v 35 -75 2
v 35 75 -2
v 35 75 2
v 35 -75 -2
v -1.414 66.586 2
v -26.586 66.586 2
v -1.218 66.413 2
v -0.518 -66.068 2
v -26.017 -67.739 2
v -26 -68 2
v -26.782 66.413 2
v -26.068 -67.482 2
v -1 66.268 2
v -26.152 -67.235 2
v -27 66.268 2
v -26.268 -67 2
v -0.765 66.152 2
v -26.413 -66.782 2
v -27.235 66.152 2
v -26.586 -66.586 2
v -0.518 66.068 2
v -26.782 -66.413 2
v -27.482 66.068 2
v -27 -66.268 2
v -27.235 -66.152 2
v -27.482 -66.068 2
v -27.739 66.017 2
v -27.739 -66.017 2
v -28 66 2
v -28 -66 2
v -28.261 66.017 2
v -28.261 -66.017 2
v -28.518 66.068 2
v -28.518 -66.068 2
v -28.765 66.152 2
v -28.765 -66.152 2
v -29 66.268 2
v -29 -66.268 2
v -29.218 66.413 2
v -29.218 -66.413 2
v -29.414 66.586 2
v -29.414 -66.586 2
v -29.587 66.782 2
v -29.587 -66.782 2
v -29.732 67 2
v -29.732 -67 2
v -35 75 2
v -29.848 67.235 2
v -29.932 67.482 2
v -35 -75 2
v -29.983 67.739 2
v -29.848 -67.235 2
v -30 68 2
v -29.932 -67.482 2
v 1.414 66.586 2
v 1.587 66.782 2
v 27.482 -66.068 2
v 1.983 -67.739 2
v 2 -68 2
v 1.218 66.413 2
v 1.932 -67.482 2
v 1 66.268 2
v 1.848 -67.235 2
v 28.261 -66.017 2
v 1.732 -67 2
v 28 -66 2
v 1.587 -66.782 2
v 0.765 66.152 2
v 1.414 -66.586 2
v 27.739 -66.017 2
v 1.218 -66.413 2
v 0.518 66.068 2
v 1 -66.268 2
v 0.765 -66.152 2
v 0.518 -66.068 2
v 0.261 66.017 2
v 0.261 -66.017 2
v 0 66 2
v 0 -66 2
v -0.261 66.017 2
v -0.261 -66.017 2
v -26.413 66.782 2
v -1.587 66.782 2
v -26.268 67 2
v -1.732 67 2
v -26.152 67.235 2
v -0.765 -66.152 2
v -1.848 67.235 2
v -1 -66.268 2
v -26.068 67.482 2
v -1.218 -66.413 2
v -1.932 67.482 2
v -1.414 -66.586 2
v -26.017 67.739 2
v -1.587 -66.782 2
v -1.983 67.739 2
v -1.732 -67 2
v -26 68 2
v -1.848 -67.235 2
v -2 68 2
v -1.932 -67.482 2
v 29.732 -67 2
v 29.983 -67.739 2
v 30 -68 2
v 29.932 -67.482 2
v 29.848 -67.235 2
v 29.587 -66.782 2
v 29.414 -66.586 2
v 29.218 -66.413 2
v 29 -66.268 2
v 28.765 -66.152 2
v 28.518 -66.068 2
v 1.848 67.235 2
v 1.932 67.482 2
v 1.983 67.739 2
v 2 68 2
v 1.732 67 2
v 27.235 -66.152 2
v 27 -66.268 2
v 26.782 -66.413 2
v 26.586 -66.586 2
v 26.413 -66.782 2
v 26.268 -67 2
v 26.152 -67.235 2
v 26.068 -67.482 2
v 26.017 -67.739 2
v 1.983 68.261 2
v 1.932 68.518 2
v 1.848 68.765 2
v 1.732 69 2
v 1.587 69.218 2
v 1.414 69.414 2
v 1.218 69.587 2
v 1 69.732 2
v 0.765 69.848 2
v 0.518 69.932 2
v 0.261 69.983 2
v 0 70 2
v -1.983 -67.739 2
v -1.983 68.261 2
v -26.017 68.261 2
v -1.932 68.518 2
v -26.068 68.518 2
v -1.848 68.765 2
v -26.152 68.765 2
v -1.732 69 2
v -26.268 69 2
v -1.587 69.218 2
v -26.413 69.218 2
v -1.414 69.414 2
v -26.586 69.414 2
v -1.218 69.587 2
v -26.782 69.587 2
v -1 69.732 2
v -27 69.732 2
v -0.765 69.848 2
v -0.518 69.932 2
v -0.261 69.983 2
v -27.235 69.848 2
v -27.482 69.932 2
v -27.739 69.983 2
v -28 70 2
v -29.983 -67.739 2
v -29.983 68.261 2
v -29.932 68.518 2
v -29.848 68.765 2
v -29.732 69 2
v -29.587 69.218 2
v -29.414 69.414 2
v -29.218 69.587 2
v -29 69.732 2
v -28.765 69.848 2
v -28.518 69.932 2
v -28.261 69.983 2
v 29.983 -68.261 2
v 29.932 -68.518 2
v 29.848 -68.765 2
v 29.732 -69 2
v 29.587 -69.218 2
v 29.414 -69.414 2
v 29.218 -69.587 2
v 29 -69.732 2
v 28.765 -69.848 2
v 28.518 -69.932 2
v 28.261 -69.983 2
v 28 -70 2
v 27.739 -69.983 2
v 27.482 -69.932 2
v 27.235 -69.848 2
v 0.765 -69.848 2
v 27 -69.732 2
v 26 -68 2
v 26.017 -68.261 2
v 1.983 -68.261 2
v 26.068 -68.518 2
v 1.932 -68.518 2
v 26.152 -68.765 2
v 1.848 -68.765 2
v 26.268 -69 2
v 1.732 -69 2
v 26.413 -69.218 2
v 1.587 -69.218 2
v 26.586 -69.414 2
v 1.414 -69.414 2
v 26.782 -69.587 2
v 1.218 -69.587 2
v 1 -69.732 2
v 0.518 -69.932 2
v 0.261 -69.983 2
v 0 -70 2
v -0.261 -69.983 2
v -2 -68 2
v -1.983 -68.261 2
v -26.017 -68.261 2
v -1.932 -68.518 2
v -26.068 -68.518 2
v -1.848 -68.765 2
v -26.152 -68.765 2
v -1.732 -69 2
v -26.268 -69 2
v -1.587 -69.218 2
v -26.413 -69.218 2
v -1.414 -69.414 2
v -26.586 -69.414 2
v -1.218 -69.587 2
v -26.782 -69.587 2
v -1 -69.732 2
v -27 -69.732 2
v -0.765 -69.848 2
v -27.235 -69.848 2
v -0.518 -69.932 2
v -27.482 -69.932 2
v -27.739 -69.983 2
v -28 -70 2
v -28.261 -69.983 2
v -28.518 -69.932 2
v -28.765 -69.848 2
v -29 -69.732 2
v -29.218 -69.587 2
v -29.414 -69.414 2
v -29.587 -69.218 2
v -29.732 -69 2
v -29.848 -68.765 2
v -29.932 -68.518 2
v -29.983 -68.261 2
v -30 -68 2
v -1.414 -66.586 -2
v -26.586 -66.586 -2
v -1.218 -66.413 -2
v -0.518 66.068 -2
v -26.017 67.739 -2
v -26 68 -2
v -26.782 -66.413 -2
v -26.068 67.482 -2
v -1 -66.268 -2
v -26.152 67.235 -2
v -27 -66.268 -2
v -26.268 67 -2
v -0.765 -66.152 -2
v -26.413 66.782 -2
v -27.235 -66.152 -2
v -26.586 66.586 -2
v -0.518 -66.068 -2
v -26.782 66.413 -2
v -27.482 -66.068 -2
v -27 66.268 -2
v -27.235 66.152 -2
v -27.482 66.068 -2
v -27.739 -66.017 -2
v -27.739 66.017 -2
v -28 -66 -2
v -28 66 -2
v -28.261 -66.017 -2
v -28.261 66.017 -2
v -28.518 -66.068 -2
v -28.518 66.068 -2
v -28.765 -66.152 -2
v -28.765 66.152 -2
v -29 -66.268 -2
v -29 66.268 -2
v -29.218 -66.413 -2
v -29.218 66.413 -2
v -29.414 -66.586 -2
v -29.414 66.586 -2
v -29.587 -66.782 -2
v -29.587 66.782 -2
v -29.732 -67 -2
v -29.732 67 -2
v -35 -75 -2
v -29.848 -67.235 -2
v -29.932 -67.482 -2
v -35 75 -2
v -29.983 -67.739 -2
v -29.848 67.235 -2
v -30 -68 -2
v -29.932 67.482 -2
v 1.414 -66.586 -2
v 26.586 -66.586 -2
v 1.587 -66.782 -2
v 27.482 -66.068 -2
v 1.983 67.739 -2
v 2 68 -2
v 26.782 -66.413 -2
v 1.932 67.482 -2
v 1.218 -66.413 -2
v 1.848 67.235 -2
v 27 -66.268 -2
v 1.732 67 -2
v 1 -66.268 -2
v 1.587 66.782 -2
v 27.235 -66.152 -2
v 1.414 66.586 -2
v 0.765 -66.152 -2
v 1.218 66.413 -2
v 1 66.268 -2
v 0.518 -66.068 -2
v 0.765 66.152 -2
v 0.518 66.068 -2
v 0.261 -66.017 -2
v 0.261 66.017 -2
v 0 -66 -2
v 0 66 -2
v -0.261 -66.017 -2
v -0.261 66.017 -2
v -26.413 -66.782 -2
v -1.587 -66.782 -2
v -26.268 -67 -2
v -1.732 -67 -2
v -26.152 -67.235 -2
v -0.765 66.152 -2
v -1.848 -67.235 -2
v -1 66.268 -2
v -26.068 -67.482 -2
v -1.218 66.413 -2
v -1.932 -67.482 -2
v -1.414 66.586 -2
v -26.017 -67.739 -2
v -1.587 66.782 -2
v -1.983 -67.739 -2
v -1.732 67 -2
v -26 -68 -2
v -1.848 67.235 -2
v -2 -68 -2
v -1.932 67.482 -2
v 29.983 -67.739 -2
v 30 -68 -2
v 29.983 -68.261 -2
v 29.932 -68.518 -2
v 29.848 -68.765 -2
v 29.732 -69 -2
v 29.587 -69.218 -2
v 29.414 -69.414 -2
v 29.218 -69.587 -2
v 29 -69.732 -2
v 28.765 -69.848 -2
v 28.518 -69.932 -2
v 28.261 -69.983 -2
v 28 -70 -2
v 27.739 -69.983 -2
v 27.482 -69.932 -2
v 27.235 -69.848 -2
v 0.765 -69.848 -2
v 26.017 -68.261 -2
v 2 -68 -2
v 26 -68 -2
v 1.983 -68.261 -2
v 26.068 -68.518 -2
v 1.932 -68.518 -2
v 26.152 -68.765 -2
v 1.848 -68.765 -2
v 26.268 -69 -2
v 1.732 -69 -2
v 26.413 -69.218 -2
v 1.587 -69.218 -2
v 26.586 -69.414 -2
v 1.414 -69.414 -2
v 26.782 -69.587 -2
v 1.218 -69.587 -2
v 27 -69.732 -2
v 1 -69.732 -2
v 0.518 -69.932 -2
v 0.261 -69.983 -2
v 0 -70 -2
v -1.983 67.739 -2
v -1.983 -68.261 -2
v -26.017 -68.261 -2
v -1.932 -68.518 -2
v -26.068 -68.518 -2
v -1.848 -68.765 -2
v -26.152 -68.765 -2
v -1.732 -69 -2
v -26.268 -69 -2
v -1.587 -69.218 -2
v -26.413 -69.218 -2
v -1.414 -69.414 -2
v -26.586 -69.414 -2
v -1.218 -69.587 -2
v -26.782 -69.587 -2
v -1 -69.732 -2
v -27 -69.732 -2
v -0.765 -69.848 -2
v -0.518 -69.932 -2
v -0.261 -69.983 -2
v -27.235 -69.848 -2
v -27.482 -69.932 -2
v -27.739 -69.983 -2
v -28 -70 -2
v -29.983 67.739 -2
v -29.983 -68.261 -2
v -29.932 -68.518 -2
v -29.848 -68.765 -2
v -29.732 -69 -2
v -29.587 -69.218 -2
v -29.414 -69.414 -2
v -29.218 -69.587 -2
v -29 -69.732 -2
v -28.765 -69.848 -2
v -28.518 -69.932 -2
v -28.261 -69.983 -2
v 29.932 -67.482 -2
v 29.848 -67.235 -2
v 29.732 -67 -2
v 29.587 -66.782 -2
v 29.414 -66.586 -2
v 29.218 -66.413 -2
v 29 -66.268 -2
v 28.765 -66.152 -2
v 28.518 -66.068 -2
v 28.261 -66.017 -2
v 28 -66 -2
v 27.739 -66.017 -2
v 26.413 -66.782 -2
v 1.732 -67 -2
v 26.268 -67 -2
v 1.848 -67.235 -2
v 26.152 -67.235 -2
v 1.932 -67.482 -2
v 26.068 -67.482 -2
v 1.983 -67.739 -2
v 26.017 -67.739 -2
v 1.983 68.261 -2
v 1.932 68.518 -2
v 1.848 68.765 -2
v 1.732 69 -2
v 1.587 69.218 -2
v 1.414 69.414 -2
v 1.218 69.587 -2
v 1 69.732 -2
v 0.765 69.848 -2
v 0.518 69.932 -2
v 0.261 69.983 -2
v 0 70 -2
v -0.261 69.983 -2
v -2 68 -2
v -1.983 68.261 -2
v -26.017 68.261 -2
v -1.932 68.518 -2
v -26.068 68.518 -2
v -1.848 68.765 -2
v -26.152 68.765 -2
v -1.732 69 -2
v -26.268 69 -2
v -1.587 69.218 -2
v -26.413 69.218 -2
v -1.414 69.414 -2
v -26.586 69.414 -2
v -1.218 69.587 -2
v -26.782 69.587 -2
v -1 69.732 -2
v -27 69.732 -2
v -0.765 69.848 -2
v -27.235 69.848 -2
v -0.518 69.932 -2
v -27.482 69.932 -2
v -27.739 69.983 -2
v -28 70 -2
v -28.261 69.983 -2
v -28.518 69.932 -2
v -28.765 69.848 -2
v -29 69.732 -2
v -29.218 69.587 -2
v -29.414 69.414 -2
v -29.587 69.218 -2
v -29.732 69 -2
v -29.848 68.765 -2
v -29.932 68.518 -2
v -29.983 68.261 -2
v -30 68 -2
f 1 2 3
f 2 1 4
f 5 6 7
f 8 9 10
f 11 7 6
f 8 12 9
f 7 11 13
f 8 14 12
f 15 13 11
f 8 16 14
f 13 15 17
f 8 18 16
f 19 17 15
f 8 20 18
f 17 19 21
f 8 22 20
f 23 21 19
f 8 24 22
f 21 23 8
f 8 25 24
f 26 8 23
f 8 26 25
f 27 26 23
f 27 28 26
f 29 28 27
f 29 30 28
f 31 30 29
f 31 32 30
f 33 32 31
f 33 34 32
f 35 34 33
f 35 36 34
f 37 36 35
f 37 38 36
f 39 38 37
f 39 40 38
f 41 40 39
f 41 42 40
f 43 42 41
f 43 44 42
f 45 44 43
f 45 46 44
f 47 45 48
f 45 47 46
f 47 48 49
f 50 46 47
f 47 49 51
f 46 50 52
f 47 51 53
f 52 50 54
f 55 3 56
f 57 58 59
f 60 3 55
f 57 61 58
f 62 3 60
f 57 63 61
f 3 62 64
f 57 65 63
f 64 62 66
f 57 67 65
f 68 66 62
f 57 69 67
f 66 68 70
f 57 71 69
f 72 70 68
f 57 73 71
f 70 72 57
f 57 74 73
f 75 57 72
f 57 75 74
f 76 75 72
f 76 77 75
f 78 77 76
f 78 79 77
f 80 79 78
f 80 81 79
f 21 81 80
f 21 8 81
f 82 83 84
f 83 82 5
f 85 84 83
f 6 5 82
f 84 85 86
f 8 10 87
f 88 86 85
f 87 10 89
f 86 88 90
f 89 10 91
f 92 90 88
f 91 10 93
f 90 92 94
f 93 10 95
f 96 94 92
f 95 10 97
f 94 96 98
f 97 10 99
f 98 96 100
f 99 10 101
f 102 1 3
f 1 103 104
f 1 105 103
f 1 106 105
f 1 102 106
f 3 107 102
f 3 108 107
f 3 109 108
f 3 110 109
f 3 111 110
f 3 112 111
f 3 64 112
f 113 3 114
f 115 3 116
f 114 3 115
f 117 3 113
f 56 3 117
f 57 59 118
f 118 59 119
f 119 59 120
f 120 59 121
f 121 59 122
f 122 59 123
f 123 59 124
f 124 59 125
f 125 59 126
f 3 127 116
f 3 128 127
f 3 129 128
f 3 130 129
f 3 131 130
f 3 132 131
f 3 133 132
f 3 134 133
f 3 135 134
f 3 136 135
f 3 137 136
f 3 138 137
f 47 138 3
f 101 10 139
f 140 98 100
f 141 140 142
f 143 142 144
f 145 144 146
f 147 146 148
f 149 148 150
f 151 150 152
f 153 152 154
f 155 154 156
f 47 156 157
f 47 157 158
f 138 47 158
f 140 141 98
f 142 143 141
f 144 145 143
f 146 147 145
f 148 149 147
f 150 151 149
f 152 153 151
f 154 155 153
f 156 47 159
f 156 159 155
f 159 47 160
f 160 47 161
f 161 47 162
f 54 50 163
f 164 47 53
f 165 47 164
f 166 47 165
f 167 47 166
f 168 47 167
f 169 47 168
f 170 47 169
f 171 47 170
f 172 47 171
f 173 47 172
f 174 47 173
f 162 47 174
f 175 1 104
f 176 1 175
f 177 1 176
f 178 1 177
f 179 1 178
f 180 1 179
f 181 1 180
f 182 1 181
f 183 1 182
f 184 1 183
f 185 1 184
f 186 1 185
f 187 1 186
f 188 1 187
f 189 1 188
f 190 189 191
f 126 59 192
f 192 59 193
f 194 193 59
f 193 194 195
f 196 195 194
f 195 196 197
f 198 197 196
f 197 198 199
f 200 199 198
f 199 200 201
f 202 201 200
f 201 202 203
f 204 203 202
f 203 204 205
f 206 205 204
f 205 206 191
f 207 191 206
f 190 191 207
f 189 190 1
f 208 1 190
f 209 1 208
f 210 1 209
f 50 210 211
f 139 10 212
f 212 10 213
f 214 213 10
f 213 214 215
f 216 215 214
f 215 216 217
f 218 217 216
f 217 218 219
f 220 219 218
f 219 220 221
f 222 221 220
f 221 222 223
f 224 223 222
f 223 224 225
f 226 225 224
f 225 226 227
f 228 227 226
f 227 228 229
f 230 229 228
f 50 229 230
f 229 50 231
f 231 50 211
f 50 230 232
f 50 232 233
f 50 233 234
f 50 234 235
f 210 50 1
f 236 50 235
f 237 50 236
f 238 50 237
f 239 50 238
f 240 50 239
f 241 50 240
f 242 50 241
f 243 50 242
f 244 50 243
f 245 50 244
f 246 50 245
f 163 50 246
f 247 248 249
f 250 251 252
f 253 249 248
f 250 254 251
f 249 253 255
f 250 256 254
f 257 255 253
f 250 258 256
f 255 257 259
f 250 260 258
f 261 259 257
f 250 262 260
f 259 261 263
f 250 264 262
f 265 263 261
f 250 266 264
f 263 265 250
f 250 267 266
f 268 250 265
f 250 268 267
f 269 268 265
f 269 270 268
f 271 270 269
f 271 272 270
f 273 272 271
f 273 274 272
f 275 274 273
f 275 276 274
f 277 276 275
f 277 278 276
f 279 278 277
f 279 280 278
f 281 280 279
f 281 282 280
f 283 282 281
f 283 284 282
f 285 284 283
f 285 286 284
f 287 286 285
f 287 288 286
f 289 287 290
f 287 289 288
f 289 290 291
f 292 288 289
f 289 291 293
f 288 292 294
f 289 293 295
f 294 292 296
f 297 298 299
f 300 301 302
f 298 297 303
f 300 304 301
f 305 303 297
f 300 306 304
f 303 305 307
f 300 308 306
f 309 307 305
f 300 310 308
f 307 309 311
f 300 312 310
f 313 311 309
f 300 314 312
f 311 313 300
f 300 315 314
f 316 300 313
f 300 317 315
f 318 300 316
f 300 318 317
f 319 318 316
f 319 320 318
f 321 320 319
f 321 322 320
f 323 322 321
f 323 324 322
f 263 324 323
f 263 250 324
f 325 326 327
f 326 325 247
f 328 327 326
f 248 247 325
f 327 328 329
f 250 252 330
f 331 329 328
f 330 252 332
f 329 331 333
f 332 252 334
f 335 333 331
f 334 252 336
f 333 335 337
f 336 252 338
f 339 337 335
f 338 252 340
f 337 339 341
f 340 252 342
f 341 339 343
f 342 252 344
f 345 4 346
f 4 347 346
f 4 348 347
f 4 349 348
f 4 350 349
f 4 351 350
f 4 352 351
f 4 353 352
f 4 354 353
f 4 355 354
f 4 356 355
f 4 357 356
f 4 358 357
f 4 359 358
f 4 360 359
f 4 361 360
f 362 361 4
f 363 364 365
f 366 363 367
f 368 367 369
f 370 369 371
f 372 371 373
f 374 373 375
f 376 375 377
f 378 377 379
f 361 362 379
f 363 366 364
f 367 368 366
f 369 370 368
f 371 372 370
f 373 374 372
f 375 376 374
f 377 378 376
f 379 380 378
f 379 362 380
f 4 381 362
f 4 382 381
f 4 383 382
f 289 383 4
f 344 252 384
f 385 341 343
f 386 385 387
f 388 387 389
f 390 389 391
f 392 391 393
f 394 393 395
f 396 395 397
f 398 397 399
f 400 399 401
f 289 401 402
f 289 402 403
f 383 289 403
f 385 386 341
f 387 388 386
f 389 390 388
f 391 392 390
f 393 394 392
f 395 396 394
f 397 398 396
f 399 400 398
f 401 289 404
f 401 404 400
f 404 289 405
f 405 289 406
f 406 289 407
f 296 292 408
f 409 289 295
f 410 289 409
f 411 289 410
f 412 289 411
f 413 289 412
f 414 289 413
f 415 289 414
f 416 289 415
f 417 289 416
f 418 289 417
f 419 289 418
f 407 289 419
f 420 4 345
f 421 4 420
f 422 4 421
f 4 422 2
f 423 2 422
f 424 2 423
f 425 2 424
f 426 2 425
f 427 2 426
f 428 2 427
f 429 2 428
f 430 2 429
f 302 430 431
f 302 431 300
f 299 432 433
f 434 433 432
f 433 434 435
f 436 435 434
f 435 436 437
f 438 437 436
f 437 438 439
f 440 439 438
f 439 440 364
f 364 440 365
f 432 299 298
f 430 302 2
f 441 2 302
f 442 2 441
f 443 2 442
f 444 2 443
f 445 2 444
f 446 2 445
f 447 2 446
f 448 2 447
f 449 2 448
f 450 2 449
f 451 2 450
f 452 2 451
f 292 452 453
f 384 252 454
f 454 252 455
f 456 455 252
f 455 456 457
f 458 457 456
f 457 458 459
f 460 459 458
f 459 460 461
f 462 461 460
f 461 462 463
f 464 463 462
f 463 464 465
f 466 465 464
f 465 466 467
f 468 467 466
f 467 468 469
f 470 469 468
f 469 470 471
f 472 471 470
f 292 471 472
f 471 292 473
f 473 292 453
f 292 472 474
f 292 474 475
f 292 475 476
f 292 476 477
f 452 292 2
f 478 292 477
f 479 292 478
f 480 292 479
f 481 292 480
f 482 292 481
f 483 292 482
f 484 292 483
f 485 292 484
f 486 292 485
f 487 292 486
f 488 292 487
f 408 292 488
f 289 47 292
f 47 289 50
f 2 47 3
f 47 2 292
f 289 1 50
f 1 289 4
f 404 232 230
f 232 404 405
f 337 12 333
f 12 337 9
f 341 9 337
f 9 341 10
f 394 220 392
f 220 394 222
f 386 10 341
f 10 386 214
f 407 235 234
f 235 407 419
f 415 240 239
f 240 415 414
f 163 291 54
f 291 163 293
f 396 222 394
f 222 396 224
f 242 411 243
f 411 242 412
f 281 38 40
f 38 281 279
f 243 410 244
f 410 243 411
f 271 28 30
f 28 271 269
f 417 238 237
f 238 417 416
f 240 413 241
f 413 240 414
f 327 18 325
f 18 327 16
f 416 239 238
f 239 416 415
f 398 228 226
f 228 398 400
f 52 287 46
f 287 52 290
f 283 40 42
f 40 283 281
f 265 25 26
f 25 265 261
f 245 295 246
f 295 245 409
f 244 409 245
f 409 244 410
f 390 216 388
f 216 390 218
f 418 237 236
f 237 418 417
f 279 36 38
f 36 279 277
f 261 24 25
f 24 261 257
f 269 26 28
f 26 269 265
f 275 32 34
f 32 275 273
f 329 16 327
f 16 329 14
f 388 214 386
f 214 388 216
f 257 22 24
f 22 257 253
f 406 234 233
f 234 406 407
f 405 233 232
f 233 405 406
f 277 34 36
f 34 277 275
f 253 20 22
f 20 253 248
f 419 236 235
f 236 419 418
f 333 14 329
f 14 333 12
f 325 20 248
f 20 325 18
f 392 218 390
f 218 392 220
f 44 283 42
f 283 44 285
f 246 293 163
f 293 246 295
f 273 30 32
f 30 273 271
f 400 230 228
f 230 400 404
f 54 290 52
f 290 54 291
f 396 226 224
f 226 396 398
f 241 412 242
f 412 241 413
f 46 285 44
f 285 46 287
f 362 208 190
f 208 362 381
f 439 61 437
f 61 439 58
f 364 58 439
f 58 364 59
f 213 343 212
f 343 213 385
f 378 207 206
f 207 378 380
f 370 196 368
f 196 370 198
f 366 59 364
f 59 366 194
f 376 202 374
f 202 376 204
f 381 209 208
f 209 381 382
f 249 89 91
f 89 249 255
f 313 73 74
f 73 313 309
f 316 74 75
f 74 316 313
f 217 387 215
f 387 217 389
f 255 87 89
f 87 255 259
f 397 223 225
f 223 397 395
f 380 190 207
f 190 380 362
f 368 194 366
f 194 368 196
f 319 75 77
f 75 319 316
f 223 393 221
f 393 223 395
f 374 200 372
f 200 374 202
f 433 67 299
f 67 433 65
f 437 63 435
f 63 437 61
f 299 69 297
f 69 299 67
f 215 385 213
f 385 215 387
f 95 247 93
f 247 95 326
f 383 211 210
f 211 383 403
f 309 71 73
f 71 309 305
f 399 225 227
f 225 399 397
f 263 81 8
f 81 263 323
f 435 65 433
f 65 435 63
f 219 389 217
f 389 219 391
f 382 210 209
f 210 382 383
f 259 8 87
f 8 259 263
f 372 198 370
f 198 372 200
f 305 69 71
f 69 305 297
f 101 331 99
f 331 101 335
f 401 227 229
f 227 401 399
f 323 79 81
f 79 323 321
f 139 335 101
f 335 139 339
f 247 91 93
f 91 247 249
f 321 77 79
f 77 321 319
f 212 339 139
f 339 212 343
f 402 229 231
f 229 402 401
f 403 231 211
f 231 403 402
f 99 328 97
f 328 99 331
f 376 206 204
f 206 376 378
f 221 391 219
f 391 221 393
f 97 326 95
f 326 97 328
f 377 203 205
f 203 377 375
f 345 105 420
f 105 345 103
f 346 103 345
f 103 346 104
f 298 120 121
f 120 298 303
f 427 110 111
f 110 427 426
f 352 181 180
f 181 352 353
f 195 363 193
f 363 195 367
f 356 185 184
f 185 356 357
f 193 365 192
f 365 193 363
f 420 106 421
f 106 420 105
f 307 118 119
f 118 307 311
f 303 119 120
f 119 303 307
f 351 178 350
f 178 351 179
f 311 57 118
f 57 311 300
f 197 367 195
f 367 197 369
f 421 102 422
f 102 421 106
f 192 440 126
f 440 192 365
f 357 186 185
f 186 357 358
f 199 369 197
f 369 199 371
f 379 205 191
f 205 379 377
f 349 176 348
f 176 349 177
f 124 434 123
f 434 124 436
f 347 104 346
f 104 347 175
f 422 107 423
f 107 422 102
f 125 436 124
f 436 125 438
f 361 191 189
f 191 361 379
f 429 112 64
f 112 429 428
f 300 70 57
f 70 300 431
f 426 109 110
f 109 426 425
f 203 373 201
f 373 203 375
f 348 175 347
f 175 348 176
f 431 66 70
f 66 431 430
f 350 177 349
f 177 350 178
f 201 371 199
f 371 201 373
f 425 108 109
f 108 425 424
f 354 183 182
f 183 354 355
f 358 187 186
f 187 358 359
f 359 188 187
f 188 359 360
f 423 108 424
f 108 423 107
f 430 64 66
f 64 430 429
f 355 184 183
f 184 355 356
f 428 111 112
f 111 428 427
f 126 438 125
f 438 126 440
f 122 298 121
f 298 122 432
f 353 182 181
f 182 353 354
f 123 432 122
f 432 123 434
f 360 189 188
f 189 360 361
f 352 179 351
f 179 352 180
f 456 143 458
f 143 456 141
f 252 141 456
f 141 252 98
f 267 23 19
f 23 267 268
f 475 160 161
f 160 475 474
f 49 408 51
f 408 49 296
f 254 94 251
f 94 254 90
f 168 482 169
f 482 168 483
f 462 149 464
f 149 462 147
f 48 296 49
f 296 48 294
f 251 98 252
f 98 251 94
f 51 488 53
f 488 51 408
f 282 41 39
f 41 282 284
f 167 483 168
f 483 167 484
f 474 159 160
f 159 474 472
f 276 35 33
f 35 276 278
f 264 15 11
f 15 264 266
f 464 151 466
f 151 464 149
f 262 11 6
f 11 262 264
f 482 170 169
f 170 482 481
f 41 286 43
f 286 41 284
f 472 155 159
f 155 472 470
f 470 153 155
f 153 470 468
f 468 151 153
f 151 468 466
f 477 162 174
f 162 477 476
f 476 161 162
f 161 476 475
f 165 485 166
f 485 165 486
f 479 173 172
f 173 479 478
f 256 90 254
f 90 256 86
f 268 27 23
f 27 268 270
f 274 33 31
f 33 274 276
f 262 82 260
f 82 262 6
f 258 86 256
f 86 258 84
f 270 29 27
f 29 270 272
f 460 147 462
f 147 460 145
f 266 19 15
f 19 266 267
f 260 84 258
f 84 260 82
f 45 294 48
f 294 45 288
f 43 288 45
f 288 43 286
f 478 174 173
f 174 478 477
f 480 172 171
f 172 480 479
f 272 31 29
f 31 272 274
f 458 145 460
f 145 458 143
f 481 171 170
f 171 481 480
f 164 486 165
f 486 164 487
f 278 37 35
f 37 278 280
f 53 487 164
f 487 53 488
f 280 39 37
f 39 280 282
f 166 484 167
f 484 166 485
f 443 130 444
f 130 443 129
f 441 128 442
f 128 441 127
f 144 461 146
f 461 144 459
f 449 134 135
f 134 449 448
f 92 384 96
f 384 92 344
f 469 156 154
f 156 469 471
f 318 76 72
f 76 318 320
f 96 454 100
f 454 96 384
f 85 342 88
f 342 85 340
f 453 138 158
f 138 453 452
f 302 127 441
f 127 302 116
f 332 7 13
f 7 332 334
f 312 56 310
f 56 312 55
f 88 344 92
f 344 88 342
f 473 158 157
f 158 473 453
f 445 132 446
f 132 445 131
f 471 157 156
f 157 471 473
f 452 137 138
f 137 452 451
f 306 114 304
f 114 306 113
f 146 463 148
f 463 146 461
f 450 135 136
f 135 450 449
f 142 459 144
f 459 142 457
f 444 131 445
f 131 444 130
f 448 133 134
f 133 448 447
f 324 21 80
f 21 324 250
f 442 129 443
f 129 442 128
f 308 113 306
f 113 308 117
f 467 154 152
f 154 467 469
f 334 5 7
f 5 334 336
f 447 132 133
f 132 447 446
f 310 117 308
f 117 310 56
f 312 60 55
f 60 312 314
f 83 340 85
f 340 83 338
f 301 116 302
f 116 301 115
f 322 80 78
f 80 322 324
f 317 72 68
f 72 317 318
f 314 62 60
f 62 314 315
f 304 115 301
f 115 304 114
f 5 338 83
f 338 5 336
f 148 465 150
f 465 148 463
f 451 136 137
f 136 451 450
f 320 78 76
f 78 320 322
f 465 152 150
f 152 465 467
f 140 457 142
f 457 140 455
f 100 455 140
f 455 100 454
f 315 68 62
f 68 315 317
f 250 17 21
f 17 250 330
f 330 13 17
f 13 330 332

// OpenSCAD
// ========================================
// a 70 x 150 x 4 mm plate with five 4 mm holes
// NeuroCAD canonical IR; dimensions are millimetres
// ========================================
$fn = 48;

difference() {
  cube(size=[70, 150, 4], center=true);
  translate([-28, -68, 0]) {
    cylinder(r=2, h=6, center=true);
  }
  translate([0, -68, 0]) {
    cylinder(r=2, h=6, center=true);
  }
  translate([28, -68, 0]) {
    cylinder(r=2, h=6, center=true);
  }
  translate([-28, 68, 0]) {
    cylinder(r=2, h=6, center=true);
  }
  translate([0, 68, 0]) {
    cylinder(r=2, h=6, center=true);
  }
}
